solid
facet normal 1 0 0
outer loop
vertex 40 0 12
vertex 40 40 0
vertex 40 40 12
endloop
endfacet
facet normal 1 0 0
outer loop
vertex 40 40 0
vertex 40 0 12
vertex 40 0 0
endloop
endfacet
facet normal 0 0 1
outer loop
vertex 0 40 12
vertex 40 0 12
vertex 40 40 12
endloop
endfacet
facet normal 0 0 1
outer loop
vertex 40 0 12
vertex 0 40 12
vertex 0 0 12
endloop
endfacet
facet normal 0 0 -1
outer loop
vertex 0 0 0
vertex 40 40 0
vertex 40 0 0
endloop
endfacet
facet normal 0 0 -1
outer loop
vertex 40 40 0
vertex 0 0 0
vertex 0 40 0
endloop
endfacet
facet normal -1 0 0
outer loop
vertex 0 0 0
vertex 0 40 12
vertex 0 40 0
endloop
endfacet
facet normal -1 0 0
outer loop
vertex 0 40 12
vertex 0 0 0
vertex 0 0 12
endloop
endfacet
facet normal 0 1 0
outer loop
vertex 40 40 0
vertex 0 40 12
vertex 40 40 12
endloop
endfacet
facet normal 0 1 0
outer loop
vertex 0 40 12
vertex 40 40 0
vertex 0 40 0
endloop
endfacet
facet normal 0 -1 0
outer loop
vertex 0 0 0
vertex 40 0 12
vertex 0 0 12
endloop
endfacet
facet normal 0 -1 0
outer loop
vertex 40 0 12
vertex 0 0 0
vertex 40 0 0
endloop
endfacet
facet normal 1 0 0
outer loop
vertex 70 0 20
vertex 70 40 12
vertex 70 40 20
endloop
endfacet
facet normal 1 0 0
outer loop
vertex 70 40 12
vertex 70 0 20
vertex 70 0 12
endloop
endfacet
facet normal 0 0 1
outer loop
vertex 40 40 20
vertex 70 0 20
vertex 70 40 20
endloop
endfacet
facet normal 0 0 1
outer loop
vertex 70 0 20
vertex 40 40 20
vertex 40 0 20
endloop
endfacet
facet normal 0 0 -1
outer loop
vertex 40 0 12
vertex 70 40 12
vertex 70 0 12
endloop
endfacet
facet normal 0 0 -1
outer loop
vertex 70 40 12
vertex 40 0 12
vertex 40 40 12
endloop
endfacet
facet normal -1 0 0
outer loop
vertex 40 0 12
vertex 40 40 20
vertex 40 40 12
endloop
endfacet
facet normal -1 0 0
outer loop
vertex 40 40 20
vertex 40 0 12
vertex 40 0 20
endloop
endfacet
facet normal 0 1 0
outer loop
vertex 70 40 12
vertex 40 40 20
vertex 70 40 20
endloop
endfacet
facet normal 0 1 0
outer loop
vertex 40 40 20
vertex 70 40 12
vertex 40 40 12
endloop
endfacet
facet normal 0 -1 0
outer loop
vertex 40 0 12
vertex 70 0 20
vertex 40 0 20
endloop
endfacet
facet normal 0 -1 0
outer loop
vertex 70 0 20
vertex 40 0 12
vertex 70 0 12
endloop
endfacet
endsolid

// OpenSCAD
// Wave Overhang test coupon — 30 mm horizontal 90° shelf, support-free target
// Base column supports the shelf root; the shelf extends 30 mm into open air.
// Every shelf layer past the base is an overhang -> wave pattern should fill it.
// Print flat on the bed, shelf pointing +X. Verify gcode has WAVE_OVERHANG_START.
$fn = 64;

base_l = 40;   // X depth of the supported column
base_w = 40;   // Y width
base_h = 12;   // Z height of column
shelf_l = 30;  // X overhang distance past the base
shelf_w = 40;  // Y width of shelf (same as base)
shelf_t = 8;   // Z thickness of the horizontal shelf (the wave block)

module coupon() {
    // supported column
    translate([0, 0, 0])
        cube([base_l, base_w, base_h]);
    // horizontal shelf, cantilevered +X, resting on the column top
    translate([base_l, 0, base_h])
        cube([shelf_l, shelf_w, shelf_t]);
}
coupon();
